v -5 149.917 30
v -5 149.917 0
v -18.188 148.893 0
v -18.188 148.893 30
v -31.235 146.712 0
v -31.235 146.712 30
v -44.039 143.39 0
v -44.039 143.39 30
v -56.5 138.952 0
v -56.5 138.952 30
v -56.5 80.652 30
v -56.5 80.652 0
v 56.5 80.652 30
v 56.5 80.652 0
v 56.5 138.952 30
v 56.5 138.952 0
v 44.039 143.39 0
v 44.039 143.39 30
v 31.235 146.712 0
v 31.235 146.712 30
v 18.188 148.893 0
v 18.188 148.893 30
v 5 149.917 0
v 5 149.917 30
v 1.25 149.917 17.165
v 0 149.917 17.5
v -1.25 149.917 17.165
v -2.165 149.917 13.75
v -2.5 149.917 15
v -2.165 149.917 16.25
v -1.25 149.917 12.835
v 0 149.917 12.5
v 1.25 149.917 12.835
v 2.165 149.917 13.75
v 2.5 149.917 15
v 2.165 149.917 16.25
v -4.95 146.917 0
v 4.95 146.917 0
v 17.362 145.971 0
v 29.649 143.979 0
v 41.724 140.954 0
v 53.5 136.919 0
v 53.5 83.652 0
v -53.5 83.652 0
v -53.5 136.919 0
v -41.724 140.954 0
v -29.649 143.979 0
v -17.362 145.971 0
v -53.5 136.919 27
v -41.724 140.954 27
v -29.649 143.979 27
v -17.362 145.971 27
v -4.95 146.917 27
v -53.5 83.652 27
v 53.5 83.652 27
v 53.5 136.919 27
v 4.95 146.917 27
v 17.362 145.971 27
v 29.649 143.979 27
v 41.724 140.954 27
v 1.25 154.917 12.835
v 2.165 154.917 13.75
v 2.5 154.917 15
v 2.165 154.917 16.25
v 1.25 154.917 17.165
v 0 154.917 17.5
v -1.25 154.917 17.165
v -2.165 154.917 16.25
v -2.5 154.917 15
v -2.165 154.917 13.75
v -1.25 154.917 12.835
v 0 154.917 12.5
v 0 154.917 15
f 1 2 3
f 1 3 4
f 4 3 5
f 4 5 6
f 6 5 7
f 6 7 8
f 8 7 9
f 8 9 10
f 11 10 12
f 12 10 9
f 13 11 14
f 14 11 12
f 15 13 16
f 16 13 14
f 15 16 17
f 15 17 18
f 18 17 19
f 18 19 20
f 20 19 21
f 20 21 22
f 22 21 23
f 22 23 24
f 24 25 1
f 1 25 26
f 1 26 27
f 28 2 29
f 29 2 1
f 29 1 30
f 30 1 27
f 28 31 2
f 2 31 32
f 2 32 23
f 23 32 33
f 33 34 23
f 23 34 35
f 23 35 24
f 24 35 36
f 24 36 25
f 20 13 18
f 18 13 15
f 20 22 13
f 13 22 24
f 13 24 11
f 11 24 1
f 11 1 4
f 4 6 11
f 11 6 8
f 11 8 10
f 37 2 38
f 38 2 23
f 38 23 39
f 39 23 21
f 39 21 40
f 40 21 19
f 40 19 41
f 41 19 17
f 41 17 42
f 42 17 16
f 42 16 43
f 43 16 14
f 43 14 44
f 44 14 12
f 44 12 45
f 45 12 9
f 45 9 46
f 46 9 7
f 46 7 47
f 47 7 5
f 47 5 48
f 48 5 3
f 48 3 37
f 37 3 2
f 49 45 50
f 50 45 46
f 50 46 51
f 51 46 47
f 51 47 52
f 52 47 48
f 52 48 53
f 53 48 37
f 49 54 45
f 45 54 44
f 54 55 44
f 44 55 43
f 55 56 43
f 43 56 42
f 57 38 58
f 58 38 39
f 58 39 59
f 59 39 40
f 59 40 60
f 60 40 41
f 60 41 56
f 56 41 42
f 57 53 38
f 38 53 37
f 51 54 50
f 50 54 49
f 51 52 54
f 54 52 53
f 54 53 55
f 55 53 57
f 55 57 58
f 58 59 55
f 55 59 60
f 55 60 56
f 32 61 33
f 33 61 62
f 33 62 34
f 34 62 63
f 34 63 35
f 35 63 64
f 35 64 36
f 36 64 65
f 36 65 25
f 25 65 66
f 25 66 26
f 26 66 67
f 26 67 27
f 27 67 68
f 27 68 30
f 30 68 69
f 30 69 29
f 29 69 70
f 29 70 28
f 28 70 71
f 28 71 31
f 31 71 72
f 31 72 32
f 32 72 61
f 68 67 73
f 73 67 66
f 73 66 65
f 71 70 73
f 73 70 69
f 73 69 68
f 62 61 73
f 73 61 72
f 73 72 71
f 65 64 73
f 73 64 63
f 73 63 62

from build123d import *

# Parameters (mm, degrees)
BOSS_EXTRUDE1_DEPTH = 30
CUT_EXTRUDE1_DEPTH  = 27
SKETCH3_R           = 2.5
BOSS_EXTRUDE2_DEPTH = 5


with BuildPart() as part:
    # Sketch1 → Boss-Extrude1 (new body)
    with BuildSketch(Plane.XY):
        with BuildLine():
            Line((-5, 149.916643506), (5, 149.916643506))
            ThreePointArc((5, 149.916643506), (31.23486102, 146.711906324), (56.5, 138.952329955))
            Line((56.5, 138.952329955), (56.5, 80.652329955))
            Line((56.5, 80.652329955), (-56.5, 80.652329955))
            Line((-56.5, 80.652329955), (-56.5, 138.952329955))
            ThreePointArc((-56.5, 138.952329955), (-31.23486102, 146.711906324), (-5, 149.916643506))
        make_face()
    extrude(amount=BOSS_EXTRUDE1_DEPTH)

    # Sketch2 → Cut-Extrude1 (cut)
    with BuildSketch(Plane(origin=(0, 0, 0), x_dir=(-1, 0, 0), z_dir=(0, 0, -1))):
        with BuildLine():
            Line((4.949733431, 146.916643506), (-4.949733431, 146.916643506))
            ThreePointArc((-4.949733431, 146.916643506), (-29.649320321, 143.978879717), (-53.5, 136.91877154))
            Line((-53.5, 136.91877154), (-53.5, 83.652329955))
            Line((-53.5, 83.652329955), (53.5, 83.652329955))
            Line((53.5, 83.652329955), (53.5, 136.91877154))
            ThreePointArc((53.5, 136.91877154), (29.649320321, 143.978879717), (4.949733431, 146.916643506))
        make_face()
    extrude(amount=-CUT_EXTRUDE1_DEPTH, mode=Mode.SUBTRACT)

    # Sketch3 → Boss-Extrude2 (add)
    with BuildSketch(Plane(origin=(0, 149.916643506, 0), x_dir=(1, 0, 0), z_dir=(0, 1, 0))):
        with Locations(Location((0, -15, 0), (0, 0, 270))):
            Circle(SKETCH3_R)
    extrude(amount=BOSS_EXTRUDE2_DEPTH)


solid = part.part
